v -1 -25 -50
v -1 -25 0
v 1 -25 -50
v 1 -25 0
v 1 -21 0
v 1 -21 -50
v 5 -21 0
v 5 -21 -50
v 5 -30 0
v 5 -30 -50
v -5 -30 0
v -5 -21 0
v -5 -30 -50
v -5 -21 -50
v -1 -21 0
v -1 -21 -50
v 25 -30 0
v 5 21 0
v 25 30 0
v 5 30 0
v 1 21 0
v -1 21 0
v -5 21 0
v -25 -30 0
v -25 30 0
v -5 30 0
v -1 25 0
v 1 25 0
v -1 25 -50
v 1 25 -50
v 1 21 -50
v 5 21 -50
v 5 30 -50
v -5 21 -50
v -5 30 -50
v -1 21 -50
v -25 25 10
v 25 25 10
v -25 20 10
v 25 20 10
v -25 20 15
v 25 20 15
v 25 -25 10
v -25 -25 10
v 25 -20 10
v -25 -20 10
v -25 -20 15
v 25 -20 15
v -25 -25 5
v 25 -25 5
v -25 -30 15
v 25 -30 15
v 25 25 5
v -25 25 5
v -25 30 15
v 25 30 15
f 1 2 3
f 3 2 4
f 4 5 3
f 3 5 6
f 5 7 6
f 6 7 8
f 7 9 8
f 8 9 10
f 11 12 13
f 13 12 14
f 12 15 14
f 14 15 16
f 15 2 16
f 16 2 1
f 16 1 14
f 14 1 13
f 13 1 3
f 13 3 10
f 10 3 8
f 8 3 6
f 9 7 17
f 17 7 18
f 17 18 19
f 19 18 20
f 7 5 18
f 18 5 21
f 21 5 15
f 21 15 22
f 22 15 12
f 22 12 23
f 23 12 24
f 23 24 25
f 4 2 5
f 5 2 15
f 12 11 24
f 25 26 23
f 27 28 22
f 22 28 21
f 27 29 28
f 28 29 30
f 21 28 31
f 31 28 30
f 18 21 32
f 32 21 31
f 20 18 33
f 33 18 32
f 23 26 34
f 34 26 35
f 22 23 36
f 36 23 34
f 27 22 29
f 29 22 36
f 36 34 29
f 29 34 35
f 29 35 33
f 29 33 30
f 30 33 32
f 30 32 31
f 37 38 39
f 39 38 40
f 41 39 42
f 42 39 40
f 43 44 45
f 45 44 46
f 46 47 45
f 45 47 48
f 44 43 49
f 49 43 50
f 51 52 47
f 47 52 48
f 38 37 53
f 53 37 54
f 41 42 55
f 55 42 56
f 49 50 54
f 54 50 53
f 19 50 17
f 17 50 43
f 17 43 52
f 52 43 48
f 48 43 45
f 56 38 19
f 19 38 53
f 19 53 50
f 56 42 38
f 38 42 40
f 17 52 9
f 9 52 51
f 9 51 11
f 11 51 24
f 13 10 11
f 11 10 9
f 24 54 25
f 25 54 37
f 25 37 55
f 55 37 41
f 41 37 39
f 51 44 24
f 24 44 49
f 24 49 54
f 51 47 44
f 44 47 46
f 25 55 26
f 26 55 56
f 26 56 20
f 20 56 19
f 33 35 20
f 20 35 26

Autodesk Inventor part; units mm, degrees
ref_plane "YZ Plane" through (0, 0, 0) normal (1, 0, 0) x (0, 1, 0)
ref_plane "XZ Plane" through (0, 0, 0) normal (0, 1, 0) x (-1, 0, 0)
ref_plane "XY Plane" through (0, 0, 0) normal (0, 0, 1) x (1, 0, 0)
sketch "Sketch1" plane through (0, 0, 0) normal (0, 0, 1) x (1, 0, 0)
  line L0 (-25, 30) -> (25, 30)
  line L1 (25, 30) -> (25, -30)
  line L2 (25, -30) -> (-25, -30)
  line L3 (-25, -30) -> (-25, 30)
  point P0 (0, 0)
  dimension "d0" = 50
  dimension "d1" = 60
  dimension "d2" = 30
  dimension "d3" = 25
extrude "Extrusion1" add sketch "Sketch1" along normal blind 5
sketch "Sketch2" plane through (0, 0, 5) normal (0, 0, 1) x (1, 0, 0)
  line L0 (-25, 30) -> (-25, -30) projected
  line L1 (-25, 25) -> (25, 25)
  line L2 (25, -30) -> (25, 30) projected
  line L3 (25, 30) -> (-25, 30) projected
  point P0 (0, 0)
  dimension "d6" = 5
extrude "Extrusion2" add sketch "Sketch2" along normal blind 10
sketch "Sketch3" plane through (0, 0, 5) normal (0, 0, 1) x (1, 0, 0)
  line L0 (-25, -30) -> (-25, 30) projected
  line L1 (-25, -25) -> (25, -25)
  line L2 (25, 30) -> (25, -30) projected
  line L3 (-25, -30) -> (25, -30) projected
  point P0 (0, 0)
  dimension "d9" = 5
extrude "Extrusion3" add sketch "Sketch3" along normal blind 10
sketch "Sketch4" plane through (-25, -25, 5) normal (0, 1, 0) x (1, 0, 0)
  line L0 (0, 5) -> (0, -10) projected
  line L1 (0, -5) -> (50, -5)
  line L2 (50, 5) -> (50, -10) projected
  line L3 (0, -10) -> (50, -10) projected
  point P0 (25, 5)
  dimension "d12" = 5
extrude "Extrusion4" add sketch "Sketch4" along normal blind 5
sketch "Sketch5" plane through (-25, 25, 5) normal (0, -1, 0) x (1, 0, 0)
  line L0 (0, -5) -> (0, 10) projected
  line L1 (0, 5) -> (50, 5)
  line L2 (50, -5) -> (50, 10) projected
  line L3 (50, 10) -> (0, 10) projected
  point P0 (25, -5)
  dimension "d15" = 5
extrude "Extrusion5" add sketch "Sketch5" along normal blind 5
sketch "Sketch12" plane through (0, 0, 0) normal (0, 0, -1) x (-1, 0, 0)
  line L0 (25, 30) -> (-25, 30) projected
  line L1 (-5, 30) -> (5, 30)
  line L2 (5, 30) -> (5, 25)
  line L3 (5, 25) -> (-5, 25)
  line L4 (-5, 25) -> (-5, 30)
  line L5 (-25, 30) -> (-25, -30) projected
  line L6 (-5, 25) -> (-1, 25)
  line L7 (-1, 25) -> (-1, 21)
  line L8 (-1, 21) -> (-5, 21)
  line L9 (-5, 21) -> (-5, 25)
  line L10 (5, 25) -> (1, 25)
  line L11 (1, 25) -> (1, 21)
  line L12 (1, 21) -> (5, 21)
  line L13 (5, 21) -> (5, 25)
  point P0 (0, 0)
  dimension "d42" = 10
  dimension "d43" = 5
  dimension "d44" = 20
  dimension "d45" = 4
  dimension "d46" = 4
  dimension "d47" = 4
  dimension "d50" = 4
extrude "Extrusion12" add sketch "Sketch12" along normal blind 50
mirror "Mirror1" about plane through (0, 0, 0) normal (0, 1, 0) of "Extrusion12"
properties part number "Substrategrip90degreesThick"
